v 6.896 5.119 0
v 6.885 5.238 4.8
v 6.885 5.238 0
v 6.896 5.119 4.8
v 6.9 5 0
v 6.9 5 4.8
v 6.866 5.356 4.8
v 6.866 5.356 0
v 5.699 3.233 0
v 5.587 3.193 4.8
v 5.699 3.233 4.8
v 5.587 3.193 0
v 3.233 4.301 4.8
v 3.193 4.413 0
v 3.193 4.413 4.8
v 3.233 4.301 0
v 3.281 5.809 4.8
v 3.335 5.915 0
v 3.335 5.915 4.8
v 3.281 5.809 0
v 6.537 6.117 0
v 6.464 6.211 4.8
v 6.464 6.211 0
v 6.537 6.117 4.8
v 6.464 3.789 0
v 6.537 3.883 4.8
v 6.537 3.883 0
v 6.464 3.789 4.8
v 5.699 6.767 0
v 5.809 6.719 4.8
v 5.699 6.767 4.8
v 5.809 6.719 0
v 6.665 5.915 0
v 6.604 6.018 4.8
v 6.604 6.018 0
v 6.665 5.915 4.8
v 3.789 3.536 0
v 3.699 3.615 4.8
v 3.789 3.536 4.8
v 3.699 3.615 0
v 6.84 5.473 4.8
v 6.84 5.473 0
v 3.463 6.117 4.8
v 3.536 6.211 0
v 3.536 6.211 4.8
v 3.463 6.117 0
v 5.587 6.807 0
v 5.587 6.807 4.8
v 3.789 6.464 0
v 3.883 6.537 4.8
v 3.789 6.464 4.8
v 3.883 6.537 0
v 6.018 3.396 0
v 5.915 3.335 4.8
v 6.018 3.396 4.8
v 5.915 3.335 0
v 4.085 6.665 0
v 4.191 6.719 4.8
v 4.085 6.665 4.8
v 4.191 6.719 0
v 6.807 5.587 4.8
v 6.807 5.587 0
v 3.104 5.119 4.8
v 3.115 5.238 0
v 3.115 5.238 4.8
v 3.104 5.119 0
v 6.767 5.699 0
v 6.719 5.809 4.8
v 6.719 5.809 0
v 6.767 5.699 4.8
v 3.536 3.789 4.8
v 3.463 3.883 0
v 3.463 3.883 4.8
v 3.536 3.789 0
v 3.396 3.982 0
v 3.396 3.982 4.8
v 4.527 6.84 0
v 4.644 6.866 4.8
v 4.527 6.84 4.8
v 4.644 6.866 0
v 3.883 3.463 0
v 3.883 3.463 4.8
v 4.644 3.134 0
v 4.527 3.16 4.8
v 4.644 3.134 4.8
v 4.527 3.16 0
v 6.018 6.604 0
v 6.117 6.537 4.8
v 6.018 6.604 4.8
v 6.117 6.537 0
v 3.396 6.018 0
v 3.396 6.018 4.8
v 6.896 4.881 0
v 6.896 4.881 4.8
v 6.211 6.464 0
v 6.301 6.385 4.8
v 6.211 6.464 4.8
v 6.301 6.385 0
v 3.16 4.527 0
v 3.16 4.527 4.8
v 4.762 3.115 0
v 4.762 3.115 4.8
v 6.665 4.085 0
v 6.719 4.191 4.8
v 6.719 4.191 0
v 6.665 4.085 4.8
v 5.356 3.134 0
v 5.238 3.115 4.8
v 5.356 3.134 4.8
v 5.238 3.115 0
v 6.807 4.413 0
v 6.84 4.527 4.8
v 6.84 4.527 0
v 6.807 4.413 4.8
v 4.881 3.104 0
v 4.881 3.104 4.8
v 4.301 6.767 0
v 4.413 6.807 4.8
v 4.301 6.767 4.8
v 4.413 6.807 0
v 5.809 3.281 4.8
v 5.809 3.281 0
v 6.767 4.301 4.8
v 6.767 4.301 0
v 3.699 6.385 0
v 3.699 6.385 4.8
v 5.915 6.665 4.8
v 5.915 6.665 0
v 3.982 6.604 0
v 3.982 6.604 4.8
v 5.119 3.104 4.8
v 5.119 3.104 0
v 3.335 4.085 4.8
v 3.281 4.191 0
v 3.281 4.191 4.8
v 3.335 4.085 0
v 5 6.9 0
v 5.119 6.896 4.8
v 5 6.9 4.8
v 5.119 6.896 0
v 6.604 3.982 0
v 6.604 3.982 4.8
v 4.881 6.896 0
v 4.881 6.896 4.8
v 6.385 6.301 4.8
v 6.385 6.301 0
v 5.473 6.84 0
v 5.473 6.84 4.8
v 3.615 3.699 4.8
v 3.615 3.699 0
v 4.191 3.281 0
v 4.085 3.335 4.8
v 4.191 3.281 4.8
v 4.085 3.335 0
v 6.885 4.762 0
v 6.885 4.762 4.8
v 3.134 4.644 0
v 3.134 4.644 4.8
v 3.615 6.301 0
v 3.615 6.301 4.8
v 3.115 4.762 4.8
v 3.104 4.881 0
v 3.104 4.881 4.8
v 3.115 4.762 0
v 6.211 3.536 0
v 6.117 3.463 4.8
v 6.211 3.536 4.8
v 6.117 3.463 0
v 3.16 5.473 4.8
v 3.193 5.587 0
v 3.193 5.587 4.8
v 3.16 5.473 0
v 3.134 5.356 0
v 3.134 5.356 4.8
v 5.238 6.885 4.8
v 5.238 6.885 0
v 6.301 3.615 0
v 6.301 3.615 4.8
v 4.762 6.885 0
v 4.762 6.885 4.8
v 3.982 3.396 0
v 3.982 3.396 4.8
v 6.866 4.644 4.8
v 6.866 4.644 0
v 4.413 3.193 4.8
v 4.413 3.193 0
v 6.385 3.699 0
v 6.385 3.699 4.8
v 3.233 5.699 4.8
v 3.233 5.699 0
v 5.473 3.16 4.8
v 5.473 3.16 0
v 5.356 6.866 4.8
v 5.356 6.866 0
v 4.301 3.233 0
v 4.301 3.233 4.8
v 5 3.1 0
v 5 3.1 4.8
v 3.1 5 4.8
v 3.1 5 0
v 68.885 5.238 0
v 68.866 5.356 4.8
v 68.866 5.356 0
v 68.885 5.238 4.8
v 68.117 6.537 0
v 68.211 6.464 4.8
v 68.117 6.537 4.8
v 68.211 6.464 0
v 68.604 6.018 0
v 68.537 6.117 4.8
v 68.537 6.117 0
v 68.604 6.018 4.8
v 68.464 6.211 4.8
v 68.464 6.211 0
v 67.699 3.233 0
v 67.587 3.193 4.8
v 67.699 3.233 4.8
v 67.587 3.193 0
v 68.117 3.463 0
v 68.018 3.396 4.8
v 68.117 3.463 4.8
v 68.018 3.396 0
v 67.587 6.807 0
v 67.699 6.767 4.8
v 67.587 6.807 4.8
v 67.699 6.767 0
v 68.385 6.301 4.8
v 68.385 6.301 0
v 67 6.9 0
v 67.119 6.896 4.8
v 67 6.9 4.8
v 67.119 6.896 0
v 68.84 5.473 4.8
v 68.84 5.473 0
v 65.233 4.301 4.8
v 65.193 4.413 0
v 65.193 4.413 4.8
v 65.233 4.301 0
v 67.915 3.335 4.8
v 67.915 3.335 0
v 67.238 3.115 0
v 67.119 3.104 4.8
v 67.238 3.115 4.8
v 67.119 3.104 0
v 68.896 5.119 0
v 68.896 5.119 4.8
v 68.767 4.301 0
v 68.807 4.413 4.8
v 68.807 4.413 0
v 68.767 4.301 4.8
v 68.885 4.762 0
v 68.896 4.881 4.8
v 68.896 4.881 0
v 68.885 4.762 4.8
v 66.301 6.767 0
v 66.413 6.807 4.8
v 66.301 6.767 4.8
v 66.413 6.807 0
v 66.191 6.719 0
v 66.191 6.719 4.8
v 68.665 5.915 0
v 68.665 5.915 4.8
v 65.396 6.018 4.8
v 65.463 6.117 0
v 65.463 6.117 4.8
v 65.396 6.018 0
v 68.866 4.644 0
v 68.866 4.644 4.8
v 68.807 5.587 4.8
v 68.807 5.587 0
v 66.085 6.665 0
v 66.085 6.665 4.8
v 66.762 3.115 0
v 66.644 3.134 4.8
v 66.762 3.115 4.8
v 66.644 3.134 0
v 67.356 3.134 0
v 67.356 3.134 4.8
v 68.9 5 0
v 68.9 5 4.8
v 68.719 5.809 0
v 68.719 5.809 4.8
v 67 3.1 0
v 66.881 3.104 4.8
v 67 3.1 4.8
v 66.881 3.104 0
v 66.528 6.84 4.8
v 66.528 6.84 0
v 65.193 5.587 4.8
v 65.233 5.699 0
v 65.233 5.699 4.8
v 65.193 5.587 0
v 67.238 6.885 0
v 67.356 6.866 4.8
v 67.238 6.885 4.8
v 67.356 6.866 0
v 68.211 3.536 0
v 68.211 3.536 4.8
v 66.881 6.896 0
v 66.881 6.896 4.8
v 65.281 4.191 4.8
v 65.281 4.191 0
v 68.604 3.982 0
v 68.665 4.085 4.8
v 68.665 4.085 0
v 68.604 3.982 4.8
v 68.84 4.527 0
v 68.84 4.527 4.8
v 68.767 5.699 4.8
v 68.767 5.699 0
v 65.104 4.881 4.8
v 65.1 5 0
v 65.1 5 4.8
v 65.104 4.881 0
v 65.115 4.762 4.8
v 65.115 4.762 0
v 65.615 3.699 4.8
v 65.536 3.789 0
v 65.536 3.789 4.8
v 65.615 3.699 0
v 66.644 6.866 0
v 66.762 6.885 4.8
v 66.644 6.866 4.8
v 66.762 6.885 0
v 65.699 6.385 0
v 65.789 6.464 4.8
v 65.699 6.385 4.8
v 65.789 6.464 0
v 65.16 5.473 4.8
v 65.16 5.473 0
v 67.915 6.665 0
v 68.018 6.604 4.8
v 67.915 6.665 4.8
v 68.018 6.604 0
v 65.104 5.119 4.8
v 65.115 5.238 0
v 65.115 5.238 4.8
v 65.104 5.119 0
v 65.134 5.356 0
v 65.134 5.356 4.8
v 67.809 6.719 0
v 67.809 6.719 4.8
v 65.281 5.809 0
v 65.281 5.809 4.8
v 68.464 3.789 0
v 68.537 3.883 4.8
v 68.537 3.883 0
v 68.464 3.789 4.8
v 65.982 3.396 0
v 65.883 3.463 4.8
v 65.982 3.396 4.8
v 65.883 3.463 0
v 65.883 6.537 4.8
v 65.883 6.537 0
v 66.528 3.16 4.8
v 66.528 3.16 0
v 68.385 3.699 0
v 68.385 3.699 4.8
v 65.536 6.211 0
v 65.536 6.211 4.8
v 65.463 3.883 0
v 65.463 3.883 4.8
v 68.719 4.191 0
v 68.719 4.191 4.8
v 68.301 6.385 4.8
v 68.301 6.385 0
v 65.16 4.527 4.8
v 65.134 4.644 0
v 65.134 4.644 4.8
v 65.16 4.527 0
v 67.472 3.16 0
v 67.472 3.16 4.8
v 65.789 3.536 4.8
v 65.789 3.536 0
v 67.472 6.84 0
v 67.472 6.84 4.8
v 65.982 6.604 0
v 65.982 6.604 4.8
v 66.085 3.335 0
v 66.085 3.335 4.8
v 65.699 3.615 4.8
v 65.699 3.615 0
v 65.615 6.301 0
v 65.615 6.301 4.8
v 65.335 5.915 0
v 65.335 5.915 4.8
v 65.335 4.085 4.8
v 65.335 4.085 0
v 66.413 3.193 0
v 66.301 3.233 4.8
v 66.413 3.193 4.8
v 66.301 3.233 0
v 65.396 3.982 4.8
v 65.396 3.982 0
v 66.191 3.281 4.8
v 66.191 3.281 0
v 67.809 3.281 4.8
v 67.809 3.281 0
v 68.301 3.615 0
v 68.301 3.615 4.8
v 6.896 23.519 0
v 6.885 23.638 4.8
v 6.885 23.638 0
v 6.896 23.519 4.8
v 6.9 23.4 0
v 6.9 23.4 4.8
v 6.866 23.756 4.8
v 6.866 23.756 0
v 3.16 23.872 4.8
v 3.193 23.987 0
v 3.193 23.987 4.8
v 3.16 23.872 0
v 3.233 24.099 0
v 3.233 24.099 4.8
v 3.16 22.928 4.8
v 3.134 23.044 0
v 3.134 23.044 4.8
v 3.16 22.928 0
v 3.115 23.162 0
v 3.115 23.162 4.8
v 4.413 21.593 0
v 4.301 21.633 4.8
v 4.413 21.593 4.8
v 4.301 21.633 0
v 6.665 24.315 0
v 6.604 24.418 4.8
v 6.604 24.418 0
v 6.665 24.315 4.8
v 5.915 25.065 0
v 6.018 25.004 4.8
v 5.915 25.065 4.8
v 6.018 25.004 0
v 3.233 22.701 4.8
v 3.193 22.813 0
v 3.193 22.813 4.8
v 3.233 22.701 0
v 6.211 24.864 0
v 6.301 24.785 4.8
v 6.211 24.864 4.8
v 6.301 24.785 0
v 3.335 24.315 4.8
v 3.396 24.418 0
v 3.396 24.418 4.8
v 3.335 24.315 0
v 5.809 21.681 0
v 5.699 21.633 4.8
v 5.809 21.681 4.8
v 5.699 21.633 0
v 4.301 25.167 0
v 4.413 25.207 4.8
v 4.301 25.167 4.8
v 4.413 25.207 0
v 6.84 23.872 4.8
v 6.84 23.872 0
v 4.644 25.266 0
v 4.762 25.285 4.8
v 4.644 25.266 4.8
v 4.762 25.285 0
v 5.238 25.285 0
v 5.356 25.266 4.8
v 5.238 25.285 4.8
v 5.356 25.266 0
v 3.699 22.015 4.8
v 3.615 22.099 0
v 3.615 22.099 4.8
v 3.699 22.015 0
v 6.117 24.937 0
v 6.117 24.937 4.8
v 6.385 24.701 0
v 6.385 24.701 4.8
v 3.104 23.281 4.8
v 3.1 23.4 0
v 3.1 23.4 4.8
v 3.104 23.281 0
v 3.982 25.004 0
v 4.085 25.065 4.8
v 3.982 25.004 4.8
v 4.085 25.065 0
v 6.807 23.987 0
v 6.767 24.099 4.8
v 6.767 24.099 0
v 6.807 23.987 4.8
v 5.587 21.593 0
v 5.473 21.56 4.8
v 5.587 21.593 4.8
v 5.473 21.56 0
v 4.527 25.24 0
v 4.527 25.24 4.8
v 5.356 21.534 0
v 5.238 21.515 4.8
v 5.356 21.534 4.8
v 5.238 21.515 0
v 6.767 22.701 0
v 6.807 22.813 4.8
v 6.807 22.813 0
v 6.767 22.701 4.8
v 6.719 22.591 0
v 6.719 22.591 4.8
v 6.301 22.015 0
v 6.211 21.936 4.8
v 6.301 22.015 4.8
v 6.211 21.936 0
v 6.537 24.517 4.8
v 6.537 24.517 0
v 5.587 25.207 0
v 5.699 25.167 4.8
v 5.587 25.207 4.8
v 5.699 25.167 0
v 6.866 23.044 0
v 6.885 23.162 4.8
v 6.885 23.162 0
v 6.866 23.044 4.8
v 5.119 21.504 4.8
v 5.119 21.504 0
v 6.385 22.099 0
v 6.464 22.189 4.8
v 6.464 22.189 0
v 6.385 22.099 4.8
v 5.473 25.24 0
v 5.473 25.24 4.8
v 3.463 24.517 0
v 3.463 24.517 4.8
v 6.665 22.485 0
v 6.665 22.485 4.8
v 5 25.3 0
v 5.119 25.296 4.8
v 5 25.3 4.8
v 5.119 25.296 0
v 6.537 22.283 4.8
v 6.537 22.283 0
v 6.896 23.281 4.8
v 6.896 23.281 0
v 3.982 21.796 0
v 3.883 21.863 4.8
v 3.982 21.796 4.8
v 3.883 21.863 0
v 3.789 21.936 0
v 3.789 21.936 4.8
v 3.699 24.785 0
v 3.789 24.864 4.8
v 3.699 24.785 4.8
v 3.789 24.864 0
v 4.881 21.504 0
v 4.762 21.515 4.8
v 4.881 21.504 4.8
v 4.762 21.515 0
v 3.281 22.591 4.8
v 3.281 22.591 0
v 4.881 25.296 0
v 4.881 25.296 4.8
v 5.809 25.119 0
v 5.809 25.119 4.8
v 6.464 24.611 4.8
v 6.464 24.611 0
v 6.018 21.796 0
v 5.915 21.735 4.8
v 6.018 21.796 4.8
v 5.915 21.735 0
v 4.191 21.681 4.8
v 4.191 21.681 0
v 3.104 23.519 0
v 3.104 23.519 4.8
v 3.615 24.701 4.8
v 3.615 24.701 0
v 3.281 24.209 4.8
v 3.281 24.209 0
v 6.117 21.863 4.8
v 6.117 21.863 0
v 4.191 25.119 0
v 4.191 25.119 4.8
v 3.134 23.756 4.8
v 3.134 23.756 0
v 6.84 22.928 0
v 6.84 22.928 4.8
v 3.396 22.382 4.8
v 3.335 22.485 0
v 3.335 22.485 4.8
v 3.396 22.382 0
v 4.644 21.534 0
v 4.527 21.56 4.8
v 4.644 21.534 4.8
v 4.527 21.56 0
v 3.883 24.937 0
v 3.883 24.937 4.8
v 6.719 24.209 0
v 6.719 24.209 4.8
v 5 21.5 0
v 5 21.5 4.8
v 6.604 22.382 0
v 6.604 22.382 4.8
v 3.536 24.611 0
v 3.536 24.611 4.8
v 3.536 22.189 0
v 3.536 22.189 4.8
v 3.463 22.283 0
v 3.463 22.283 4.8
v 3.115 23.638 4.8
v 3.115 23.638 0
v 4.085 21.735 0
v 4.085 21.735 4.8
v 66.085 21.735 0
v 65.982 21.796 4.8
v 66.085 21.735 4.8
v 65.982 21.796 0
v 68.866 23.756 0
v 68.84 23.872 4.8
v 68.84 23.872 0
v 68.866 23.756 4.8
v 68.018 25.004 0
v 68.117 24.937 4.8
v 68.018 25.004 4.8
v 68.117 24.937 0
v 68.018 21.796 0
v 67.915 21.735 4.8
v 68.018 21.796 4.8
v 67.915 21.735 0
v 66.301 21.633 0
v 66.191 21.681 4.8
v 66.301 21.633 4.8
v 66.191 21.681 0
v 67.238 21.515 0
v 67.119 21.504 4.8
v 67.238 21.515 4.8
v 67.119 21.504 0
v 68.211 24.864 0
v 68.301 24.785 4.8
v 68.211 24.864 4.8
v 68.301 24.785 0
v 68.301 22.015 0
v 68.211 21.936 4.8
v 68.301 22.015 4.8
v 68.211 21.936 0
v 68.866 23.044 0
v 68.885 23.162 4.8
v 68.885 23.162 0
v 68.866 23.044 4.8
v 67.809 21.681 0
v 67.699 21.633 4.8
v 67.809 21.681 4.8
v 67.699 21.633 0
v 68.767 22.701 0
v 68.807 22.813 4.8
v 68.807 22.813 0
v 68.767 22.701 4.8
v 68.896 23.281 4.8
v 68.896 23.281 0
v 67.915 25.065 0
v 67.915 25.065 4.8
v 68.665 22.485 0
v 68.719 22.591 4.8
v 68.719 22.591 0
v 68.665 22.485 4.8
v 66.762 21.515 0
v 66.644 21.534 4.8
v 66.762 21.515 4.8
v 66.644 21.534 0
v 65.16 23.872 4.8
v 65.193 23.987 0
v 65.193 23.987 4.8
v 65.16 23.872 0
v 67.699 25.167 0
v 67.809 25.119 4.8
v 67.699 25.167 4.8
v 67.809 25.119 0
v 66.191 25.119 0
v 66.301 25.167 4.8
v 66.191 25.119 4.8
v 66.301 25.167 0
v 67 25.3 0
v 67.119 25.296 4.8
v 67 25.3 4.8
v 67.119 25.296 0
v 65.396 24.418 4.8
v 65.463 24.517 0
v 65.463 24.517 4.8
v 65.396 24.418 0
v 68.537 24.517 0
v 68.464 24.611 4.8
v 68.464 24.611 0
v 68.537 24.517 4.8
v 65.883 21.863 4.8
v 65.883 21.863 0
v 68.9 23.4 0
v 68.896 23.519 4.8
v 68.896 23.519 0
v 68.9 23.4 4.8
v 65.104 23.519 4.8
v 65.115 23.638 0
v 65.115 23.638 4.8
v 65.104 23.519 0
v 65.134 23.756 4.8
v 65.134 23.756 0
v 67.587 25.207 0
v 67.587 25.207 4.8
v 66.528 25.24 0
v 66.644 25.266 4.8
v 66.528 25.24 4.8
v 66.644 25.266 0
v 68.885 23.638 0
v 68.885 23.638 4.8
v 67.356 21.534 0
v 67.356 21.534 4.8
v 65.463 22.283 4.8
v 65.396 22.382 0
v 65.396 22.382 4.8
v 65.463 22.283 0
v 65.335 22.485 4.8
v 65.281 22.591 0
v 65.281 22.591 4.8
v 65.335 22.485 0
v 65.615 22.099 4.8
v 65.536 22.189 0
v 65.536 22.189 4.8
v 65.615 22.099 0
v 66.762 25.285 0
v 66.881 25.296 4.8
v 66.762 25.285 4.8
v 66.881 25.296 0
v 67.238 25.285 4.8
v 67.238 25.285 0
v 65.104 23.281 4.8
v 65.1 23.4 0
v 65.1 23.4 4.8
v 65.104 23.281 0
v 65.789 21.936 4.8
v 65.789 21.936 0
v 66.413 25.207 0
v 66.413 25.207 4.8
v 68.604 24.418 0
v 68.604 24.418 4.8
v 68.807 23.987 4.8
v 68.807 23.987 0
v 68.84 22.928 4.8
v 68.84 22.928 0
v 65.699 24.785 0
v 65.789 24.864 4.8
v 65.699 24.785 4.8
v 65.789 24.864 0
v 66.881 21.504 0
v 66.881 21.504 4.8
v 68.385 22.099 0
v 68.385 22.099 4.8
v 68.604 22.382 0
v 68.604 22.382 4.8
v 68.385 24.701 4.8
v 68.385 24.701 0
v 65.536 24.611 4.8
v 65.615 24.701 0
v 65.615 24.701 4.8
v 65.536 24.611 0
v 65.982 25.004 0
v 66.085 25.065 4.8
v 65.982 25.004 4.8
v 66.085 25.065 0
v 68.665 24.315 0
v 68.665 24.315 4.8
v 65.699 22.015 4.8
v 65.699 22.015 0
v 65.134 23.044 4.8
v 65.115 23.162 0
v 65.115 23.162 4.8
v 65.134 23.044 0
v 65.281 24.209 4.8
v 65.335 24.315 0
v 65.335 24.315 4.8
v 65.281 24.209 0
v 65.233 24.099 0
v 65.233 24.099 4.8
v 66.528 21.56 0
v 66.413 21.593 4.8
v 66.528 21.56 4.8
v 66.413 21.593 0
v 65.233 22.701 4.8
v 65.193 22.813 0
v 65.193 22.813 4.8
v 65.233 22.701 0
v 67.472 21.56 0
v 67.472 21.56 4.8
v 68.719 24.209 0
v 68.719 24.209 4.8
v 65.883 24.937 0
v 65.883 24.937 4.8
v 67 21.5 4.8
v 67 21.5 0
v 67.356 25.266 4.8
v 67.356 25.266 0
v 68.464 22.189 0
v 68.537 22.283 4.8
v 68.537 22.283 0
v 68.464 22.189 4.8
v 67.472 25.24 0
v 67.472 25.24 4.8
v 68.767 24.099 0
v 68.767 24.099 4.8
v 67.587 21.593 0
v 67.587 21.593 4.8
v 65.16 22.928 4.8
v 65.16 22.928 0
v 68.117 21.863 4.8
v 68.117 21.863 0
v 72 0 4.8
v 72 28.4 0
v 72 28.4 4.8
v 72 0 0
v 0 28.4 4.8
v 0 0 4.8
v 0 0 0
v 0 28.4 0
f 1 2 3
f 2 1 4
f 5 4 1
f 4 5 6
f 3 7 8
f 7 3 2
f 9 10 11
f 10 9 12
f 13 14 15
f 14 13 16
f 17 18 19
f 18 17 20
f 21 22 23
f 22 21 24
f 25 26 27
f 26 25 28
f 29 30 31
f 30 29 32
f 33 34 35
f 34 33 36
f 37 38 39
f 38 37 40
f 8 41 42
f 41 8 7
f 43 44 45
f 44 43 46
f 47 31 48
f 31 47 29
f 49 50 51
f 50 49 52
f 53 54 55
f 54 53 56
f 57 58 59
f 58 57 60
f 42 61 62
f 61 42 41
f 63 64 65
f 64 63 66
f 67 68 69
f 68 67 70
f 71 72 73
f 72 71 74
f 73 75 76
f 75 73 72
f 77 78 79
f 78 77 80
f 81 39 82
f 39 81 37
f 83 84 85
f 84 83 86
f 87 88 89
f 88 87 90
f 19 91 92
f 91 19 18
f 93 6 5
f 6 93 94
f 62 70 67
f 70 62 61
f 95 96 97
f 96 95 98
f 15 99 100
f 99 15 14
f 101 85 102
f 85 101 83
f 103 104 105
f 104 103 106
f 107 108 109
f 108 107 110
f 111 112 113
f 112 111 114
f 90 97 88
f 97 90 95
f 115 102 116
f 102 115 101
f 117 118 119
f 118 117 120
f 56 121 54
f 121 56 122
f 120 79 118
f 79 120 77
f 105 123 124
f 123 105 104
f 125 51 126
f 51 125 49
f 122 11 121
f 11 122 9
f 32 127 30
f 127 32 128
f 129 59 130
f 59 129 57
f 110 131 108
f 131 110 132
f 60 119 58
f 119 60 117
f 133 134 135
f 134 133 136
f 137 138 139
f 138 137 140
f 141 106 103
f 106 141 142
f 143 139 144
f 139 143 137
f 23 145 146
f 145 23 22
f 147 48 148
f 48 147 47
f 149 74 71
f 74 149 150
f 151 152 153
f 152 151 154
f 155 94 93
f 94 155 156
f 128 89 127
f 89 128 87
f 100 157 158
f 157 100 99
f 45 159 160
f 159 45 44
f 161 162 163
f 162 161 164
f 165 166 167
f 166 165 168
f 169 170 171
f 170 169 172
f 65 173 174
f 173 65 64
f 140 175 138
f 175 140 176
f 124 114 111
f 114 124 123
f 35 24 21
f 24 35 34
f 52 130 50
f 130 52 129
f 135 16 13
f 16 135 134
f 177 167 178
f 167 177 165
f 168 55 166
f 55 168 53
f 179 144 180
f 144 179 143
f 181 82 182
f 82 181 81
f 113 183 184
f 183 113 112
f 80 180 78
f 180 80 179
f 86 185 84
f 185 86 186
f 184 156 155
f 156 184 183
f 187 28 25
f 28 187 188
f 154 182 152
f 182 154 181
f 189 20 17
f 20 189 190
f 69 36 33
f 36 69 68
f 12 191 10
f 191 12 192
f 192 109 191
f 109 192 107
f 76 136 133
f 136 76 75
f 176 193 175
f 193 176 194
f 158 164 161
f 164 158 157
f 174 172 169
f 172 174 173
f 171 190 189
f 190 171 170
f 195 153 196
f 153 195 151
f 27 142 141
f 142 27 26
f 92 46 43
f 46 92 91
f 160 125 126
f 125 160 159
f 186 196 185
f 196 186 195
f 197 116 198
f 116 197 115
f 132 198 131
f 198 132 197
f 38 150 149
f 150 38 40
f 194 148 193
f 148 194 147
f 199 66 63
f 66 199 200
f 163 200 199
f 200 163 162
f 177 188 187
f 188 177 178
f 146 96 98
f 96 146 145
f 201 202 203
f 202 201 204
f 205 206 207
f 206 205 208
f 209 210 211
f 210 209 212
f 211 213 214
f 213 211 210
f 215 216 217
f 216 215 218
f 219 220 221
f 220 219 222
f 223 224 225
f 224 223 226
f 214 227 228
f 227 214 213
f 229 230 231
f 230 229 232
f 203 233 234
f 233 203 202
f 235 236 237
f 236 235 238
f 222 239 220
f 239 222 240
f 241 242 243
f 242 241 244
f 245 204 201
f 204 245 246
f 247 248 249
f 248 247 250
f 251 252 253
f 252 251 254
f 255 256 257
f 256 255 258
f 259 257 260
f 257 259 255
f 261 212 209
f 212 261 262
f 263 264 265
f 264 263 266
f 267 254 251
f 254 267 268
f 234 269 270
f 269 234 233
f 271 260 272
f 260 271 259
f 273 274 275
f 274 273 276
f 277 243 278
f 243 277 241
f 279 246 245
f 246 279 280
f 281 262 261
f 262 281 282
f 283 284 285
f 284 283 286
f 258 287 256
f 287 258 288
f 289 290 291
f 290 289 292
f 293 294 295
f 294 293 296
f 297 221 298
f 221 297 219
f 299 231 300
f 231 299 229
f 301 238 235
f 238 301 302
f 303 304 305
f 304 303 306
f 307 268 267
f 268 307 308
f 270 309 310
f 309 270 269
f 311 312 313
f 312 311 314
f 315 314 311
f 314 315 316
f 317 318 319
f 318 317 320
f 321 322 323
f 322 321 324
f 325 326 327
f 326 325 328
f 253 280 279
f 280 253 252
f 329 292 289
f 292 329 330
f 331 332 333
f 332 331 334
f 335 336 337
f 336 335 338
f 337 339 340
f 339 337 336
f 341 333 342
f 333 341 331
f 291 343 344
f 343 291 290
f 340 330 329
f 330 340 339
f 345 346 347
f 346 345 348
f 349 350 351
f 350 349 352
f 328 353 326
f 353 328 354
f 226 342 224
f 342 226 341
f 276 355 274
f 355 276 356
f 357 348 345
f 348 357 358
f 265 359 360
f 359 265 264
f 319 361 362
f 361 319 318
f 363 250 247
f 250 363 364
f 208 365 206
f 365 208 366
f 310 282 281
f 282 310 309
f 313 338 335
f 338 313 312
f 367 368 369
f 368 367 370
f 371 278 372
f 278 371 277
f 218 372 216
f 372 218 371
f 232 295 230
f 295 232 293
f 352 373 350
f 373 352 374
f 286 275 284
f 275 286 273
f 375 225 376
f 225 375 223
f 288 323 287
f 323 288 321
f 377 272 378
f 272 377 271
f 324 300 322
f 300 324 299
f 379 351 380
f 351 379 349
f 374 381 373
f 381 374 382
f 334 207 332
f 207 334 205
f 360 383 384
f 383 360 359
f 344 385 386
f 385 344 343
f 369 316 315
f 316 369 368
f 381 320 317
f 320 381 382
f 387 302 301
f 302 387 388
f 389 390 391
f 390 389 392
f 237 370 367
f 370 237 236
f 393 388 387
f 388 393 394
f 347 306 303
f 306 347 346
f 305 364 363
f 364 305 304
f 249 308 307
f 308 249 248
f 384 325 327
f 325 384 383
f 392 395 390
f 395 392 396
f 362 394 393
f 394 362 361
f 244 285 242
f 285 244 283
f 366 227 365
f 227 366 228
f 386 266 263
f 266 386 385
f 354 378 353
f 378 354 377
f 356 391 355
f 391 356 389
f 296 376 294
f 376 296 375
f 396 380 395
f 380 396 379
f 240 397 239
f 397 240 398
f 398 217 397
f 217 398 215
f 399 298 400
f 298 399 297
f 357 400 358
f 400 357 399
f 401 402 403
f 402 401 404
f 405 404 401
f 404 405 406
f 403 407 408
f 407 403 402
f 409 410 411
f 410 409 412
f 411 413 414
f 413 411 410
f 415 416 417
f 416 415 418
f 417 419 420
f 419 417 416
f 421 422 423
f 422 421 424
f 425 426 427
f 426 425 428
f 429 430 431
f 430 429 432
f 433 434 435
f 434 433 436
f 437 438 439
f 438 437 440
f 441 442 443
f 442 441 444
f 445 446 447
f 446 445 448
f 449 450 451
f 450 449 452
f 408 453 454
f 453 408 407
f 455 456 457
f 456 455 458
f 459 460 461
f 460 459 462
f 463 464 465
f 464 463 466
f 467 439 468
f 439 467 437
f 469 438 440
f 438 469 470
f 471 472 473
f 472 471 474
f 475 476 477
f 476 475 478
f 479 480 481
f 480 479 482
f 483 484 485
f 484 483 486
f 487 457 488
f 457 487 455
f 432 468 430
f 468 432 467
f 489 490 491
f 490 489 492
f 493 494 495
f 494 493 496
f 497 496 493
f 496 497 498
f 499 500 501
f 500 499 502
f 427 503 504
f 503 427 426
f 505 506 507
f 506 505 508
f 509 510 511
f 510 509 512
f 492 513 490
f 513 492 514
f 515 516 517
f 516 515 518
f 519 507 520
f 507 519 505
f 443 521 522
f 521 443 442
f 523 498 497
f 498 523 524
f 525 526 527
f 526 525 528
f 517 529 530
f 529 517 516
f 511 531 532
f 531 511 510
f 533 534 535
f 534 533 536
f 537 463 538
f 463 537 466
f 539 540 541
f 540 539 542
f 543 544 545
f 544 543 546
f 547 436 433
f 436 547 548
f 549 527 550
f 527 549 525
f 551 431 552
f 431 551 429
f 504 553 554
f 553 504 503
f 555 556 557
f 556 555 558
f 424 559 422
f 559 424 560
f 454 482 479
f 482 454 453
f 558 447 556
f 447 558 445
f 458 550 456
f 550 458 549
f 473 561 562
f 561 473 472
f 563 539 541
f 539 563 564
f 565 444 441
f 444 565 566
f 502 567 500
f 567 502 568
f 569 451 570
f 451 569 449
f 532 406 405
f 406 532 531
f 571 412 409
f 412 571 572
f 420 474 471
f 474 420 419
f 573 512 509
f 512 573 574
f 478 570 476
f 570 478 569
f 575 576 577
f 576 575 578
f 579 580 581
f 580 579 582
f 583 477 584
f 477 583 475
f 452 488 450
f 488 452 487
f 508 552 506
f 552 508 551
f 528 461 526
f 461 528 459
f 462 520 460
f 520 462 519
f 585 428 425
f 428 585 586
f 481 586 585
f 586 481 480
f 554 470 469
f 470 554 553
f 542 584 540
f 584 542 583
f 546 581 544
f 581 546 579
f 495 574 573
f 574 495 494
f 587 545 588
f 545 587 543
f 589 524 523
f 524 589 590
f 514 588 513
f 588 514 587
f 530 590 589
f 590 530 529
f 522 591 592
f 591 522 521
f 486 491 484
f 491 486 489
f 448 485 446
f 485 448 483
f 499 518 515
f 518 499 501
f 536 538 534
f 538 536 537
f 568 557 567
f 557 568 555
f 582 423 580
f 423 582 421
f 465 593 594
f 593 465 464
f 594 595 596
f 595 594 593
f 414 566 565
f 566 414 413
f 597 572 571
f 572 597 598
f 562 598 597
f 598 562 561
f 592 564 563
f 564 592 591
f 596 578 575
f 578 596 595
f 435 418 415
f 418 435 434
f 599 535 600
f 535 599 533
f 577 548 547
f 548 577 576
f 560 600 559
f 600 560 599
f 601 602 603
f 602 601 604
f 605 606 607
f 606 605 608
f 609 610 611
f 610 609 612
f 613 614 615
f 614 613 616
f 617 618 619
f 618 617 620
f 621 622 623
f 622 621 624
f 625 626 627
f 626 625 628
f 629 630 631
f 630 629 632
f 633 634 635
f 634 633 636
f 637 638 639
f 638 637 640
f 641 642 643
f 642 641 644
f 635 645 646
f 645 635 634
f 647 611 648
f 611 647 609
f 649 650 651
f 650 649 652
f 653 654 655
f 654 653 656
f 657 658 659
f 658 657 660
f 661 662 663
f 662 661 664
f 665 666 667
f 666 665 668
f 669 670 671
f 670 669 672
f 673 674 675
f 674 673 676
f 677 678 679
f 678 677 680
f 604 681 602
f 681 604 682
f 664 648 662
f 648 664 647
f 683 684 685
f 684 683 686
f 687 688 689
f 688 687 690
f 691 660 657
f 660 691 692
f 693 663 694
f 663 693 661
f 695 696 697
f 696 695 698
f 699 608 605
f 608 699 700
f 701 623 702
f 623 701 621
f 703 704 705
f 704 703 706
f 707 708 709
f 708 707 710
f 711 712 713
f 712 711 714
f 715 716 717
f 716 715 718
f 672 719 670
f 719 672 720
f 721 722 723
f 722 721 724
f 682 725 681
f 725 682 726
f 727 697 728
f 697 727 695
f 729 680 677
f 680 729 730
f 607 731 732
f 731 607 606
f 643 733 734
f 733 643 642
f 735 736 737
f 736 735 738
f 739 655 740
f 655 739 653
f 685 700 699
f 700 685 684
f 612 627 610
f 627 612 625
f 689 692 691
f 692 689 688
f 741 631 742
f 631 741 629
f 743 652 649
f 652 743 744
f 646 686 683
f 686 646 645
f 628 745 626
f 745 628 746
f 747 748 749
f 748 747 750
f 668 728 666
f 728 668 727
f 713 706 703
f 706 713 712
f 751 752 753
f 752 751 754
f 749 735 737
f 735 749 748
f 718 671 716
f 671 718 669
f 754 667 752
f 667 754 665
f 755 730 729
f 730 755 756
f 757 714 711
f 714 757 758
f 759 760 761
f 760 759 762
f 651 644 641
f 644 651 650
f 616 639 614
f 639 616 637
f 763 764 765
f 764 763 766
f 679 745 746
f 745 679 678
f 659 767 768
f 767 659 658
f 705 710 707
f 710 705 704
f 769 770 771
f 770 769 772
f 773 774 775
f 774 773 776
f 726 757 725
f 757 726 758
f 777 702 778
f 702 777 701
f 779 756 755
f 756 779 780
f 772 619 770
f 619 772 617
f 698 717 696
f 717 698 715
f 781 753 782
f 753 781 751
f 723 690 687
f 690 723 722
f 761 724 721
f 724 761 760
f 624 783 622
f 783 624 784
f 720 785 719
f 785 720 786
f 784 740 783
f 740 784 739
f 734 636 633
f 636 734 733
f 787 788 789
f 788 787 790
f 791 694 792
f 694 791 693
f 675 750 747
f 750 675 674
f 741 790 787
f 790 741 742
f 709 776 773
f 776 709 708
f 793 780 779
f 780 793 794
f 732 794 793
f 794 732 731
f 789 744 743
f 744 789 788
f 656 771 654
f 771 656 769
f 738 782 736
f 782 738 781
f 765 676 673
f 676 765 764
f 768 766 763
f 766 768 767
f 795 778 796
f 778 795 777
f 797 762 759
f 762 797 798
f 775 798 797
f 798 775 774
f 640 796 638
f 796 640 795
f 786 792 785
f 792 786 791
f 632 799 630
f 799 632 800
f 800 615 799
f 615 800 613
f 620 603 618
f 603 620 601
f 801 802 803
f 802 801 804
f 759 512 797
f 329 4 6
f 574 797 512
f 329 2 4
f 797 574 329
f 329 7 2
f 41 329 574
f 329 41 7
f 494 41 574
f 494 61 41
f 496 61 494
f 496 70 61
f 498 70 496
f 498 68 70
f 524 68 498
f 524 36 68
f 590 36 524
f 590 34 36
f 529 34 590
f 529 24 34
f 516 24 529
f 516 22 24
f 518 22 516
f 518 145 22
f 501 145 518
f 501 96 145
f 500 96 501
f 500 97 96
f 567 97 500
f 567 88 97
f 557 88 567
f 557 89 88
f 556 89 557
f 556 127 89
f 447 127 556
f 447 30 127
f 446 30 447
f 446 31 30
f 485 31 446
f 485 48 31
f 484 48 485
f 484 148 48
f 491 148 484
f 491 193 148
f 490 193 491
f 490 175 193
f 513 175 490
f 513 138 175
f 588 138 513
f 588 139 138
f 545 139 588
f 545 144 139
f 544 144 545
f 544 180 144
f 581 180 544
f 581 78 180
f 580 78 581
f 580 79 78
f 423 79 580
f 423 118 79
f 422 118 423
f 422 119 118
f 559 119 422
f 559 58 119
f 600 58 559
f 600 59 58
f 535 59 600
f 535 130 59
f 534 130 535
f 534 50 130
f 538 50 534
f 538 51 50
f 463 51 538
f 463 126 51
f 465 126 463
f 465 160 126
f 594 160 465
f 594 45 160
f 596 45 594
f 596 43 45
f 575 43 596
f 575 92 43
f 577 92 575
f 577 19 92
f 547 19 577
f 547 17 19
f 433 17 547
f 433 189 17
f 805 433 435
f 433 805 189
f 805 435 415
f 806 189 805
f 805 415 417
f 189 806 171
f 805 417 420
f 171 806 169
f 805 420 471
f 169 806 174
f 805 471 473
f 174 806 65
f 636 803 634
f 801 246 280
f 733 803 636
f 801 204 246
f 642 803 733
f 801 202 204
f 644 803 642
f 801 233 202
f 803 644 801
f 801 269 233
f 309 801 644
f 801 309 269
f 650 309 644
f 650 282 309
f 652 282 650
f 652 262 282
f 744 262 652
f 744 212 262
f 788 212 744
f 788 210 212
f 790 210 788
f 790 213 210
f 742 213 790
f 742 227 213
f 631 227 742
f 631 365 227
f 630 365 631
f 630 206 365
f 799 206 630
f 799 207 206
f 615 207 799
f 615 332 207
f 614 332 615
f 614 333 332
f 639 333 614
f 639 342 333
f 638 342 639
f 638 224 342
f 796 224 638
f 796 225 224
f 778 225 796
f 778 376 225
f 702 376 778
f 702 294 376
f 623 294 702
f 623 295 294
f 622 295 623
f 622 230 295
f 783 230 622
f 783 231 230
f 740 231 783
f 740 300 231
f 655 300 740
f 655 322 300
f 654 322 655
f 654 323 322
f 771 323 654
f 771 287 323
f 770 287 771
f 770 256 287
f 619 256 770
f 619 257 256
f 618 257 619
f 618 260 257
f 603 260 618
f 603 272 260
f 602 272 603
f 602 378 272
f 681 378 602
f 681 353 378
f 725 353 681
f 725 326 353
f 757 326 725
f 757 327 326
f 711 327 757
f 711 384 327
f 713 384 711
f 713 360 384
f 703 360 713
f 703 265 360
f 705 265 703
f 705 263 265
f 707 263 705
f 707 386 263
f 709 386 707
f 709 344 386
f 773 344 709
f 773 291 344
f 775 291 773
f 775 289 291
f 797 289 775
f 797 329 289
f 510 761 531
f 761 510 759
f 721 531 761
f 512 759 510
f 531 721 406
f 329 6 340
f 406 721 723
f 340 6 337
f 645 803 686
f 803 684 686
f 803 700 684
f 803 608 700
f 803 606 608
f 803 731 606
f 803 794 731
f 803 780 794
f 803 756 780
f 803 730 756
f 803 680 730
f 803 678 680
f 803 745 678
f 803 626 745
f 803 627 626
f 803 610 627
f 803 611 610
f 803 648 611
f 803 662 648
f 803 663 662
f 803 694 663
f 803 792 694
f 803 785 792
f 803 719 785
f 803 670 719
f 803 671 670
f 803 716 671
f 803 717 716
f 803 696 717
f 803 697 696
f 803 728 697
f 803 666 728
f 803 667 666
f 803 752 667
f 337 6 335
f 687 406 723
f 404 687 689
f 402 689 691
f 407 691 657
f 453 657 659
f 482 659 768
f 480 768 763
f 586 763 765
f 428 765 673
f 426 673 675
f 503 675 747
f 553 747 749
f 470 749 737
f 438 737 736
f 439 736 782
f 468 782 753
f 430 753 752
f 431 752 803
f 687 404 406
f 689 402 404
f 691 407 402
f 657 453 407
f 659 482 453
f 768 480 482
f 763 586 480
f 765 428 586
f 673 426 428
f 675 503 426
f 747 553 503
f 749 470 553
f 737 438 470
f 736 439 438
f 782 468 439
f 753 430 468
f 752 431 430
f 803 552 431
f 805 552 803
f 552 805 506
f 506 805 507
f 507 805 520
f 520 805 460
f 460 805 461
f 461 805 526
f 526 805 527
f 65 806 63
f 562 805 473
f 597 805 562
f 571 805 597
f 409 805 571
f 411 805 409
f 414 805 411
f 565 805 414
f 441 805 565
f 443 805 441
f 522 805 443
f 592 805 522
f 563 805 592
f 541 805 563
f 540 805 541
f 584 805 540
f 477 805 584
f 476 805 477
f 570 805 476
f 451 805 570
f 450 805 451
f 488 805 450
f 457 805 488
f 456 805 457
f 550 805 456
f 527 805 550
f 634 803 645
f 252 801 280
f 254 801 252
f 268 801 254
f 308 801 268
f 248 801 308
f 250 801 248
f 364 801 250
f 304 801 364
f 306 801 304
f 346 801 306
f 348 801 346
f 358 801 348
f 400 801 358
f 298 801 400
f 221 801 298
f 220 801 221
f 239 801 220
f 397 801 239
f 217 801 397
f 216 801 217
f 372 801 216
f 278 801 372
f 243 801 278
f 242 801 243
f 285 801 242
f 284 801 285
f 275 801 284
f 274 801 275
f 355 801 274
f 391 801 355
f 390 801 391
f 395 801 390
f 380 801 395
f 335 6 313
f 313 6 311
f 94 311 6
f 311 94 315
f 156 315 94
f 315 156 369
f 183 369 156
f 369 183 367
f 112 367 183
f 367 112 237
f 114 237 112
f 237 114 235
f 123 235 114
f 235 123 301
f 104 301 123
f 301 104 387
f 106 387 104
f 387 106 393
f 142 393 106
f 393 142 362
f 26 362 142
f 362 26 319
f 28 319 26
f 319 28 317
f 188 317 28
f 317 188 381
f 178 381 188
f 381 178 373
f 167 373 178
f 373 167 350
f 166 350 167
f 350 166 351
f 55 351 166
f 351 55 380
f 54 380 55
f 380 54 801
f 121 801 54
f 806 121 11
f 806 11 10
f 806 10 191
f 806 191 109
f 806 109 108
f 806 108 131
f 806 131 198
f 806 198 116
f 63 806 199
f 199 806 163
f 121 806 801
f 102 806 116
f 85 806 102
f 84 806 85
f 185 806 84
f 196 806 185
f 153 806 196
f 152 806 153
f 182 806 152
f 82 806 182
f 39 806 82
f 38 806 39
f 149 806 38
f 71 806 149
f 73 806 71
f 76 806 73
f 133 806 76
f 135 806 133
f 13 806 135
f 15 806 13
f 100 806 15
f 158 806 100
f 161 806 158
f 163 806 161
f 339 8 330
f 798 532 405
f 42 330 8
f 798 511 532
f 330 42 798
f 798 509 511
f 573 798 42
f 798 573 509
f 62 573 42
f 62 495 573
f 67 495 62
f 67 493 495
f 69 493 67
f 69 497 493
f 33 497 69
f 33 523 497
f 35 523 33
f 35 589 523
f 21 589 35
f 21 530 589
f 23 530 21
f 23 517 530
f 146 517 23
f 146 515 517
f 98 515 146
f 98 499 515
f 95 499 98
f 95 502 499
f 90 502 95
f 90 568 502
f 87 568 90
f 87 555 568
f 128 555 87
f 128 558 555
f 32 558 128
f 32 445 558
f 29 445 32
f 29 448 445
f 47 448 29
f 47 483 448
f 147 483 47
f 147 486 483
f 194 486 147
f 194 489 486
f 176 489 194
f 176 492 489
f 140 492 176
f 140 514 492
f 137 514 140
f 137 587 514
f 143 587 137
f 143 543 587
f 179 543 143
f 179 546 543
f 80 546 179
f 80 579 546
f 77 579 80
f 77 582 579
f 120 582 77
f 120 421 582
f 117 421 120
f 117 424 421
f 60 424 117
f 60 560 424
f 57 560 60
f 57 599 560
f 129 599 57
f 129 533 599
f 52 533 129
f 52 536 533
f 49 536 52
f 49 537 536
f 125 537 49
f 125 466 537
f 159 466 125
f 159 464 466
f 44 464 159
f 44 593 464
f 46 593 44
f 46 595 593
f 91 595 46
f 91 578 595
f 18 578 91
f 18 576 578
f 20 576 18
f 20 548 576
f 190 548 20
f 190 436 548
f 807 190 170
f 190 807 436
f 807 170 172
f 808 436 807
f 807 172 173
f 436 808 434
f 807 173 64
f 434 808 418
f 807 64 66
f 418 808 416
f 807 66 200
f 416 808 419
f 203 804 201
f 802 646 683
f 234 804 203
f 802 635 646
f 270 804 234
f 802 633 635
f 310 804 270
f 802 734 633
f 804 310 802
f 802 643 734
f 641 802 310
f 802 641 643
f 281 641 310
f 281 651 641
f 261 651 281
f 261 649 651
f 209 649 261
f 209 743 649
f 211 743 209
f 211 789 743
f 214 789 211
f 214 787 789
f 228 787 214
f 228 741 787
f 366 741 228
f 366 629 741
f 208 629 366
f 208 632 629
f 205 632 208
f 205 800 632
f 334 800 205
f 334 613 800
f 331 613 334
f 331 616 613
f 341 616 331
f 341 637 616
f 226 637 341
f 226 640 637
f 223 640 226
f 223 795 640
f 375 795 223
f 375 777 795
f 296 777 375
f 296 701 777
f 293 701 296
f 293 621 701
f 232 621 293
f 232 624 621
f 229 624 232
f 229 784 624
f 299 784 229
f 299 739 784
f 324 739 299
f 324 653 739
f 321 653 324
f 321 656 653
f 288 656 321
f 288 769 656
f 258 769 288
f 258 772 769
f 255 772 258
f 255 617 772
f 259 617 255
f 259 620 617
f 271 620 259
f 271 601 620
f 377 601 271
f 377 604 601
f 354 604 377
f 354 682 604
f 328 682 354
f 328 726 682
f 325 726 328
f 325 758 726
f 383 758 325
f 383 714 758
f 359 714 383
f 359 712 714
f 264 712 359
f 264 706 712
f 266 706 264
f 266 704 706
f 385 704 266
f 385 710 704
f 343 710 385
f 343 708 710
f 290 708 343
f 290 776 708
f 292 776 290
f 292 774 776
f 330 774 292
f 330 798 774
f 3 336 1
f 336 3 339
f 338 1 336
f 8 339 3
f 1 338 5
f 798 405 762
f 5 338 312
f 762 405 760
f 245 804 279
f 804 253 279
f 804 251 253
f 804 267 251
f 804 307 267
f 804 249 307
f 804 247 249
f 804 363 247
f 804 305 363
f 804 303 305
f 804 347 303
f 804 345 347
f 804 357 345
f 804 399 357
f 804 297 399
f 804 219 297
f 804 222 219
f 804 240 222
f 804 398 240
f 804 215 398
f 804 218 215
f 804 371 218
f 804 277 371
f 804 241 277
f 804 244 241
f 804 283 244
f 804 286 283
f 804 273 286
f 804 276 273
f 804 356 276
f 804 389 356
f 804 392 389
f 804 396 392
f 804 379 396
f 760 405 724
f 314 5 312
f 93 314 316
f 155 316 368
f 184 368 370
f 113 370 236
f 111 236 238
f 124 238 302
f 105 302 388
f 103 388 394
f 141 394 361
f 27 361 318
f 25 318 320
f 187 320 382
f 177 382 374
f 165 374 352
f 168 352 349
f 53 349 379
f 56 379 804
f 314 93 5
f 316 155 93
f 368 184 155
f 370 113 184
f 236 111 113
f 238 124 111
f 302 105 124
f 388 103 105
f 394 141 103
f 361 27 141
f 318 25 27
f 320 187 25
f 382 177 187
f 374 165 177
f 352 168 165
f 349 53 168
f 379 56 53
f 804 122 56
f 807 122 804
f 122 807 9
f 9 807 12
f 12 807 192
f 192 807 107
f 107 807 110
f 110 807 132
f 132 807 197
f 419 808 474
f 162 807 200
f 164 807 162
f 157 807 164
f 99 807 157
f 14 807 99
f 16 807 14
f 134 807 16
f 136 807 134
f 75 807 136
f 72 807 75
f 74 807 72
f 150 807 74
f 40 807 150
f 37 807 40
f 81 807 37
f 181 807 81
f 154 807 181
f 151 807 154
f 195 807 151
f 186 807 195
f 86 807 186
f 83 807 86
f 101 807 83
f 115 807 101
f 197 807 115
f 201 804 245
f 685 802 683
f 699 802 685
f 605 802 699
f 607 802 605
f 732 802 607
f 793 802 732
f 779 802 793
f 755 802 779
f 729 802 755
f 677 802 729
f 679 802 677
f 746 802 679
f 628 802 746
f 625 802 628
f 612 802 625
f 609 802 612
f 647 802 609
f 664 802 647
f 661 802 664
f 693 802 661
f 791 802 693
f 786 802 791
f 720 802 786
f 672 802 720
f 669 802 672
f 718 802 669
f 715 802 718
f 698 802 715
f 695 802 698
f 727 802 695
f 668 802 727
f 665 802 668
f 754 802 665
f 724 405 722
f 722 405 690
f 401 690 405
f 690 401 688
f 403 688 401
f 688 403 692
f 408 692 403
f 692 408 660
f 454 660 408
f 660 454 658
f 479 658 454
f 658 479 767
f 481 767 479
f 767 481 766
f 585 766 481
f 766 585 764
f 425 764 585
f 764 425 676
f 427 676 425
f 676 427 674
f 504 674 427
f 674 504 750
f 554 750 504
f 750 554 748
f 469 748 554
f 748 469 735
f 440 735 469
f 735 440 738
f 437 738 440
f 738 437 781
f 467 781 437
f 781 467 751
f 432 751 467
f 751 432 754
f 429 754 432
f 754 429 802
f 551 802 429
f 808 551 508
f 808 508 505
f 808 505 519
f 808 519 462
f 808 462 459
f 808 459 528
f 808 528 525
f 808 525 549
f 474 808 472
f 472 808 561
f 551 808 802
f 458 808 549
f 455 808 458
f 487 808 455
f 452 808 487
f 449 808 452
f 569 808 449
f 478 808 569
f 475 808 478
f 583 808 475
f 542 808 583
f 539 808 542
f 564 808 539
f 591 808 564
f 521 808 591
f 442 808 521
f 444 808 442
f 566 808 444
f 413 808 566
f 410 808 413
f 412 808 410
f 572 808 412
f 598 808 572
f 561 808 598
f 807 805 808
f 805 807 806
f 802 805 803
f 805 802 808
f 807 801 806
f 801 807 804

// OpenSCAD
// file: ../configurations/global.scad
housing_facades_throws_diameter = 3.8;

// external size
case_external_x_size = 90;
case_external_y_size = 140;
case_external_z_size = 38;
case_external_panes_thickness = 4.8;

facade_front_round_edges_radius = 5;
facade_throws_margin = 5;

facade_front_fixation_throws_diameter = housing_facades_throws_diameter;

// facade corners
facade_corners_offset_lenght = 9;
facade_corners_main_x_size = 19;
facade_corners_main_y_size = 19;
facade_corners_main_thickness = 11;
facade_corners_correction_offset_length = 0.2;
facade_corners_correction_offset_thickness = 0.0;
facade_fn = 100;


facade_controller_coords = [
    case_external_x_size / 2,
    case_external_y_size / 2 - 30,
];


// Screen frames
screen_frame_electronic_board_margin = 3;
screen_frame_throw_diameter = 3.5;
screen_frame_piece_z_size = 1.5;
screen_frame_piece_glass_embedding_margin = 1;
screen_frame_piece_glass_embedding_z_depth = 1;
screen_frame_facade_piece_z_size = 1;
screen_frame_fn = 100;

screen_glass_visible_zone_x_margin = 0.7;
screen_glass_visible_zone_y_margin = 0.7;
screen_glass_z_size = 1;

facade_screen_coords = [
    case_external_x_size / 2,
    case_external_y_size / 2 + 28,
];


// Generics
insert_throw_diameter = 4.2;
insert_throw_length = 6 + 2;


// Controller facade
controller_breadboard_x_size_point = 28;
controller_breadboard_y_size_point = 9;

controller_facade_z_size = 2;
controller_facade_button_throw_margin = 1;
controller_facade_small_button_throw_margin = 0.5;
controller_facade_a_b_button_throw_margin = 0.5;

controller_facade_border_rounded_border_1 = 5;
controller_facade_border_rounded_border_2 = 4;

controller_facade_with_border_x_size = 82;
controller_facade_with_border_y_size = 47;

controller_facade_border_throws_margin = 5;
controller_braidboard_throw_margin = 1;

controller_facade_border_fn = 80;


// Cross Button
controller_cross_button_x_y_size = 20;
controller_cross_button_z_size = 4;
controller_cross_button_thickness = 6;
controller_cross_button_round_edges_radius = 1;
controller_cross_button_support_x_y_size = 22;
controller_cross_button_support_z_size = 1;
controller_cross_button_fn = 150;


// A and B Buttons
controller_a_b_button_diameter = 7.5;
controller_a_b_button_z_size = 4;
controller_a_b_button_support_diameter = 9.5;
controller_a_b_button_support_z_size = 1;
controller_a_b_button_fn = 80;


// small Buttons
controller_small_button_diameter = 5.5;
controller_small_button_z_size = 3;
controller_small_button_support_diameter = 7.5;
controller_small_button_support_z_size = 1;
controller_small_button_fn = 80;

// Directional cross
controller_directional_cross_points_coords = [6, 5];
controller_start_button_points_coords = [14, 3];
controller_select_button_points_coords = [18, 3];
controller_menu_button_points_coords = [14, 7];
controller_option_button_points_coords = [18, 7];
controller_a_button_points_coords = [23, 4];
controller_b_button_points_coords = [27, 6];
controller_bolt_throws_list = [
    [2, 2],
    [2, 8],
    [10, 2],
    [10, 8],
    [27, 2],
    [23, 8],
];


// usb charger holder
usb_charger_support_total_x_size = 17.57 + 15;
usb_charger_support_total_y_size = 12;
usb_charger_support_total_z_size = 2;


usb_charger_fixation_support_z_size = 4.5;
usb_charger_encaps_x_size = 17.57 + 1;
usb_charger_encaps_y_size = 27.85 + 1;
usb_charger_encaps_z_size = 1;

usb_charger_facade_x_fixation_spacing = 42;
usb_charger_facade_y_size = 1.36;
usb_charger_facade_z_size = 14;

usb_charger_throw_diameter = 3.5;
usb_charger_facade_holder_z_offset = 3.5; //
usb_charger_fixation_facade_y_margin = 0.5;
usb_charger_throw_offset_y = 4.5;
usb_charger_throw_offset_x = 3.5;
usb_charger_facade_fn = 100;

usb_charger_external_facade_main_throw_margin = 2;
usb_charger_external_facade_main_throw_diameter = housing_facades_throws_diameter;

usb_charger_coords = [
    28, 15
];


facade_top_on_off_button_throw_diameter = 12.8;

facade_top_on_off_button_coords = [
    case_external_x_size / 2 + 18,
    case_external_z_size / 2
];


// Bolt join Piece Mother board
bolt_join_mother_board_internal_diameter = 3.5;
bolt_join_mother_board_external_diameter = 3.5 + (0.4 * 6);
bolt_join_mother_board_height = 3;

// Bolt join Piece GamePadController
bolt_join_game_pad_internal_diameter = 3.5;
bolt_join_game_pad_external_diameter = 3.5 + (0.4 * 6);
bolt_join_game_pad_height = 6.5;

bolt_join_fn = 500;


// Mother board breadboard
mother_board_x_size_point = 25;
mother_board_y_size_point = 32;

mother_board_coords = [
    case_external_x_size / 2 - ((mother_board_x_size_point + 1) * 2.54) / 2,
    44,
    3
];

mother_board_bolt_throws_list = [
    [3, 2],
    [3, 17],
    [23, 2],
    [23, 17],
];


// Speaker
speaker_facade_throw_diameter = 28 + 1;
speaker_facade_z_size = 1.36;
speaker_facade_rounded_radius = 5;
// file: ../libraries/commons.scad
/**
 * forEachCoord
 * Wrapper to apply child on each element
 */
module forEachCoord(coords_list) {
    for (coords = coords_list)
        translate(
            [
                coords[0] == undef ? 0 : coords[0],
                coords[1] == undef ? 0 : coords[1],
                coords[2] == undef ? 0 : coords[2],
            ]
        )
            children();
}
// main file
use <./../libraries/commons.scad>

include <./../configurations/global.scad>


/**
 * facadeBottomPiece
 * @name facadeBottomPiece
 * @description Piece can be printed or CNC cutted #3DPrint, #CNC
 * @type piece
 * @parent housingComponent
 */
module facadeBottomPiece(
    x_size = case_external_x_size - (facade_corners_offset_lenght * 2),
    y_size = case_external_z_size - (case_external_panes_thickness * 2),
    z_size = case_external_panes_thickness,
    throws_margin = facade_throws_margin,
    throws_diameter = housing_facades_throws_diameter,

    $fn = facade_fn
) {

    echo(str("facadeBottomPiece ", "x_size: ", x_size, " y_size: ", y_size, " z_size: ", z_size));
    difference() {
        color("BurlyWood")
            cube([x_size, y_size, z_size]);

        translate([0, 0, -z_size / 2])
            forEachCoord([
                [throws_margin, throws_margin],
                [x_size - throws_margin, throws_margin],
                [throws_margin, y_size - throws_margin],
                [x_size - throws_margin, y_size - throws_margin,],
            ])
                cylinder(h = z_size * 2, d = throws_diameter, $fn = $fn);
    }
}

/**
 * @stl
 * @png
 * @colorscheme BeforeDawn
 * @view axes,scales
 */
facadeBottomPiece();
